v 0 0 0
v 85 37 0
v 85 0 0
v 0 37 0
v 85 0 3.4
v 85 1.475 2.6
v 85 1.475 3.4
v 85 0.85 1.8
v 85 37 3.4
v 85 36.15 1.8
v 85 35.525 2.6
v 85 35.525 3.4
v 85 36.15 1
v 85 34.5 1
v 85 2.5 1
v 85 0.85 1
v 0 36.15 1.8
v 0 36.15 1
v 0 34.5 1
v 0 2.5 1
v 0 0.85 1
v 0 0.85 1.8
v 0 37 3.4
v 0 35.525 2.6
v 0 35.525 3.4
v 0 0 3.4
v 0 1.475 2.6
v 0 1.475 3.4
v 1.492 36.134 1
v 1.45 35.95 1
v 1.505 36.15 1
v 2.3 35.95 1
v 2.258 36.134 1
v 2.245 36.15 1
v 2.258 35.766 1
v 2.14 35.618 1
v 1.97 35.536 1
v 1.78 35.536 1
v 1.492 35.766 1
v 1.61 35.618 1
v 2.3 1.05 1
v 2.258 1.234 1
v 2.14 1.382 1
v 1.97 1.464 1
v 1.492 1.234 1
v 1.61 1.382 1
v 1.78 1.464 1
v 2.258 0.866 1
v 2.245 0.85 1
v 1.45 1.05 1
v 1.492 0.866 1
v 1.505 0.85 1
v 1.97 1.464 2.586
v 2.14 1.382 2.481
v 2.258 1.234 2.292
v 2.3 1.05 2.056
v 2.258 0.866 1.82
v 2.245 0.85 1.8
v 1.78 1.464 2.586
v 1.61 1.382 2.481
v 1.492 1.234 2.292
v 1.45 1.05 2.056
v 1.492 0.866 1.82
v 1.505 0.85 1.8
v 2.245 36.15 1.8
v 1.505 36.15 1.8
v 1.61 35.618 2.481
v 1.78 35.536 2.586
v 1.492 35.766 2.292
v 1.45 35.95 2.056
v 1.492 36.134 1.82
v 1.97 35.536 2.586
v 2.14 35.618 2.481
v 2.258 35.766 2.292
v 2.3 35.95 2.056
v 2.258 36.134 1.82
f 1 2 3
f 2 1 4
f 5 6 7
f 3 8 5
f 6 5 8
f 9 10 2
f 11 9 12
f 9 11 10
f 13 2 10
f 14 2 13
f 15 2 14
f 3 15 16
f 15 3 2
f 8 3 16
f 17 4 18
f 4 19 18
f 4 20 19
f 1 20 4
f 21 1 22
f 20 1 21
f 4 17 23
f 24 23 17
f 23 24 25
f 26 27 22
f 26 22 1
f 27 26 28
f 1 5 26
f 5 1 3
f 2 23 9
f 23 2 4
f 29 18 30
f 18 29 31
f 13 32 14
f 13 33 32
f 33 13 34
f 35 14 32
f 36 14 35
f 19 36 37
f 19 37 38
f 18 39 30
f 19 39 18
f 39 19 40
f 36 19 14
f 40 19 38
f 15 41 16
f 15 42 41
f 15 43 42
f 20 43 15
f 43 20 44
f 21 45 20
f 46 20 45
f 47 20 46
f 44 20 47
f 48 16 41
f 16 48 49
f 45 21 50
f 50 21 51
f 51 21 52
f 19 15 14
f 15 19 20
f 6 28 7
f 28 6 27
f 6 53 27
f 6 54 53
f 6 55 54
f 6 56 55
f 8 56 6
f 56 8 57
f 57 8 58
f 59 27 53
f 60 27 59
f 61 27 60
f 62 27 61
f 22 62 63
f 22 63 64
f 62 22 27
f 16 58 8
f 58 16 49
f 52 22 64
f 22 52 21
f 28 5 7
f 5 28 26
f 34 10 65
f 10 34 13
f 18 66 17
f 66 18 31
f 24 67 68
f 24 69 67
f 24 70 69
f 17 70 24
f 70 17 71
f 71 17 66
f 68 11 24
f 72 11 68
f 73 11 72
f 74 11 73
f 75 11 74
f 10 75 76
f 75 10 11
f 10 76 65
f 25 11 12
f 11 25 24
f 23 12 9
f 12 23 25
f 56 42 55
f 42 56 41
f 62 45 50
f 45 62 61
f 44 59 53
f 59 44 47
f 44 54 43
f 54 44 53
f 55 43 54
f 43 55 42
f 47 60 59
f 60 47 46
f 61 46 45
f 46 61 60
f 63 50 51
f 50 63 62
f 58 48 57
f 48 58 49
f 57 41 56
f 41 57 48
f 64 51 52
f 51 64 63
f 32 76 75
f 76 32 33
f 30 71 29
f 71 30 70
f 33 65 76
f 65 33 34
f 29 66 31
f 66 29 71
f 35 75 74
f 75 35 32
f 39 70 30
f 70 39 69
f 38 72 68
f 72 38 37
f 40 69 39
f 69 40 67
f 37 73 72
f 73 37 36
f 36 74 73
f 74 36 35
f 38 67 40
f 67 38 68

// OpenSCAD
// Diameter of the nozzle plays into the polygon shape for the 
// slide to move freely but 'taught' for the back cover.
nozzle_diameter = 0.4;

// Thickness of the walls.
wall_thickness = 2.5;

// Amount of space for the camera cable to the end of the pi zero.
cable_room = 10;

// board size + left padding + right padding + wall thickness.
length = 65 + cable_room + 5 + (wall_thickness * 2);
// board size + inset spacing + wall thickness.
width = 30 + 2+ (wall_thickness * 2);

// Sliding back of the case
union() {
    difference() {
        translate([0, 0, 0])
            linear_extrude(height = 1)
                square([length, width]);
        translate([0 + wall_thickness, wall_thickness, 1])
            linear_extrude(height = 1)
                square([length - (wall_thickness * 2), width - (wall_thickness * 2)]);
        translate([0, wall_thickness, 1])
            linear_extrude(height = 1)
                square([length, width - (wall_thickness * 2)]);
    };

    // Slide rails
    translate([0 + length, 0, 1]) rotate([0, 270, 0]) 
        linear_extrude(height = length)
            polygon([
                [0,0], 
                [2.4, 0], 
                [2.4, wall_thickness * .75 - nozzle_diameter], 
                [1.6, wall_thickness * .75 - nozzle_diameter], 
                [.8, (wall_thickness / 2) - nozzle_diameter ], 
                [0, (wall_thickness / 2) - nozzle_diameter]
            ]);
    // For the inverse slide rail side, rotate 180 to extrude in the opposite direction, then rotate & translate into final position.
    translate([0 + length, width, 1]) rotate([0, 270, 0]) 
        linear_extrude(height = length)
            rotate([180, 0, 0])
            polygon([
                [0,0], 
                [2.4, 0], 
                [2.4, wall_thickness * .75 - nozzle_diameter], 
                [1.6, wall_thickness * .75 - nozzle_diameter], 
                [.8, (wall_thickness / 2) - nozzle_diameter], 
                [0, (wall_thickness / 2) - nozzle_diameter]
            ]);
    // Case Detents
        translate([0 + wall_thickness * .75, wall_thickness * .5 - .2, 2]) 
            scale([1/10, 1/10, 1/10]) cylinder(25, d = (.5 * wall_thickness * 10) - 4, center = true);
        translate([0 + wall_thickness * .75, width - (wall_thickness * .5 -.2), 2]) 
            scale([1/10, 1/10, 1/10]) cylinder(25, d = (.5 * wall_thickness * 10) - 4, center = true);
}
